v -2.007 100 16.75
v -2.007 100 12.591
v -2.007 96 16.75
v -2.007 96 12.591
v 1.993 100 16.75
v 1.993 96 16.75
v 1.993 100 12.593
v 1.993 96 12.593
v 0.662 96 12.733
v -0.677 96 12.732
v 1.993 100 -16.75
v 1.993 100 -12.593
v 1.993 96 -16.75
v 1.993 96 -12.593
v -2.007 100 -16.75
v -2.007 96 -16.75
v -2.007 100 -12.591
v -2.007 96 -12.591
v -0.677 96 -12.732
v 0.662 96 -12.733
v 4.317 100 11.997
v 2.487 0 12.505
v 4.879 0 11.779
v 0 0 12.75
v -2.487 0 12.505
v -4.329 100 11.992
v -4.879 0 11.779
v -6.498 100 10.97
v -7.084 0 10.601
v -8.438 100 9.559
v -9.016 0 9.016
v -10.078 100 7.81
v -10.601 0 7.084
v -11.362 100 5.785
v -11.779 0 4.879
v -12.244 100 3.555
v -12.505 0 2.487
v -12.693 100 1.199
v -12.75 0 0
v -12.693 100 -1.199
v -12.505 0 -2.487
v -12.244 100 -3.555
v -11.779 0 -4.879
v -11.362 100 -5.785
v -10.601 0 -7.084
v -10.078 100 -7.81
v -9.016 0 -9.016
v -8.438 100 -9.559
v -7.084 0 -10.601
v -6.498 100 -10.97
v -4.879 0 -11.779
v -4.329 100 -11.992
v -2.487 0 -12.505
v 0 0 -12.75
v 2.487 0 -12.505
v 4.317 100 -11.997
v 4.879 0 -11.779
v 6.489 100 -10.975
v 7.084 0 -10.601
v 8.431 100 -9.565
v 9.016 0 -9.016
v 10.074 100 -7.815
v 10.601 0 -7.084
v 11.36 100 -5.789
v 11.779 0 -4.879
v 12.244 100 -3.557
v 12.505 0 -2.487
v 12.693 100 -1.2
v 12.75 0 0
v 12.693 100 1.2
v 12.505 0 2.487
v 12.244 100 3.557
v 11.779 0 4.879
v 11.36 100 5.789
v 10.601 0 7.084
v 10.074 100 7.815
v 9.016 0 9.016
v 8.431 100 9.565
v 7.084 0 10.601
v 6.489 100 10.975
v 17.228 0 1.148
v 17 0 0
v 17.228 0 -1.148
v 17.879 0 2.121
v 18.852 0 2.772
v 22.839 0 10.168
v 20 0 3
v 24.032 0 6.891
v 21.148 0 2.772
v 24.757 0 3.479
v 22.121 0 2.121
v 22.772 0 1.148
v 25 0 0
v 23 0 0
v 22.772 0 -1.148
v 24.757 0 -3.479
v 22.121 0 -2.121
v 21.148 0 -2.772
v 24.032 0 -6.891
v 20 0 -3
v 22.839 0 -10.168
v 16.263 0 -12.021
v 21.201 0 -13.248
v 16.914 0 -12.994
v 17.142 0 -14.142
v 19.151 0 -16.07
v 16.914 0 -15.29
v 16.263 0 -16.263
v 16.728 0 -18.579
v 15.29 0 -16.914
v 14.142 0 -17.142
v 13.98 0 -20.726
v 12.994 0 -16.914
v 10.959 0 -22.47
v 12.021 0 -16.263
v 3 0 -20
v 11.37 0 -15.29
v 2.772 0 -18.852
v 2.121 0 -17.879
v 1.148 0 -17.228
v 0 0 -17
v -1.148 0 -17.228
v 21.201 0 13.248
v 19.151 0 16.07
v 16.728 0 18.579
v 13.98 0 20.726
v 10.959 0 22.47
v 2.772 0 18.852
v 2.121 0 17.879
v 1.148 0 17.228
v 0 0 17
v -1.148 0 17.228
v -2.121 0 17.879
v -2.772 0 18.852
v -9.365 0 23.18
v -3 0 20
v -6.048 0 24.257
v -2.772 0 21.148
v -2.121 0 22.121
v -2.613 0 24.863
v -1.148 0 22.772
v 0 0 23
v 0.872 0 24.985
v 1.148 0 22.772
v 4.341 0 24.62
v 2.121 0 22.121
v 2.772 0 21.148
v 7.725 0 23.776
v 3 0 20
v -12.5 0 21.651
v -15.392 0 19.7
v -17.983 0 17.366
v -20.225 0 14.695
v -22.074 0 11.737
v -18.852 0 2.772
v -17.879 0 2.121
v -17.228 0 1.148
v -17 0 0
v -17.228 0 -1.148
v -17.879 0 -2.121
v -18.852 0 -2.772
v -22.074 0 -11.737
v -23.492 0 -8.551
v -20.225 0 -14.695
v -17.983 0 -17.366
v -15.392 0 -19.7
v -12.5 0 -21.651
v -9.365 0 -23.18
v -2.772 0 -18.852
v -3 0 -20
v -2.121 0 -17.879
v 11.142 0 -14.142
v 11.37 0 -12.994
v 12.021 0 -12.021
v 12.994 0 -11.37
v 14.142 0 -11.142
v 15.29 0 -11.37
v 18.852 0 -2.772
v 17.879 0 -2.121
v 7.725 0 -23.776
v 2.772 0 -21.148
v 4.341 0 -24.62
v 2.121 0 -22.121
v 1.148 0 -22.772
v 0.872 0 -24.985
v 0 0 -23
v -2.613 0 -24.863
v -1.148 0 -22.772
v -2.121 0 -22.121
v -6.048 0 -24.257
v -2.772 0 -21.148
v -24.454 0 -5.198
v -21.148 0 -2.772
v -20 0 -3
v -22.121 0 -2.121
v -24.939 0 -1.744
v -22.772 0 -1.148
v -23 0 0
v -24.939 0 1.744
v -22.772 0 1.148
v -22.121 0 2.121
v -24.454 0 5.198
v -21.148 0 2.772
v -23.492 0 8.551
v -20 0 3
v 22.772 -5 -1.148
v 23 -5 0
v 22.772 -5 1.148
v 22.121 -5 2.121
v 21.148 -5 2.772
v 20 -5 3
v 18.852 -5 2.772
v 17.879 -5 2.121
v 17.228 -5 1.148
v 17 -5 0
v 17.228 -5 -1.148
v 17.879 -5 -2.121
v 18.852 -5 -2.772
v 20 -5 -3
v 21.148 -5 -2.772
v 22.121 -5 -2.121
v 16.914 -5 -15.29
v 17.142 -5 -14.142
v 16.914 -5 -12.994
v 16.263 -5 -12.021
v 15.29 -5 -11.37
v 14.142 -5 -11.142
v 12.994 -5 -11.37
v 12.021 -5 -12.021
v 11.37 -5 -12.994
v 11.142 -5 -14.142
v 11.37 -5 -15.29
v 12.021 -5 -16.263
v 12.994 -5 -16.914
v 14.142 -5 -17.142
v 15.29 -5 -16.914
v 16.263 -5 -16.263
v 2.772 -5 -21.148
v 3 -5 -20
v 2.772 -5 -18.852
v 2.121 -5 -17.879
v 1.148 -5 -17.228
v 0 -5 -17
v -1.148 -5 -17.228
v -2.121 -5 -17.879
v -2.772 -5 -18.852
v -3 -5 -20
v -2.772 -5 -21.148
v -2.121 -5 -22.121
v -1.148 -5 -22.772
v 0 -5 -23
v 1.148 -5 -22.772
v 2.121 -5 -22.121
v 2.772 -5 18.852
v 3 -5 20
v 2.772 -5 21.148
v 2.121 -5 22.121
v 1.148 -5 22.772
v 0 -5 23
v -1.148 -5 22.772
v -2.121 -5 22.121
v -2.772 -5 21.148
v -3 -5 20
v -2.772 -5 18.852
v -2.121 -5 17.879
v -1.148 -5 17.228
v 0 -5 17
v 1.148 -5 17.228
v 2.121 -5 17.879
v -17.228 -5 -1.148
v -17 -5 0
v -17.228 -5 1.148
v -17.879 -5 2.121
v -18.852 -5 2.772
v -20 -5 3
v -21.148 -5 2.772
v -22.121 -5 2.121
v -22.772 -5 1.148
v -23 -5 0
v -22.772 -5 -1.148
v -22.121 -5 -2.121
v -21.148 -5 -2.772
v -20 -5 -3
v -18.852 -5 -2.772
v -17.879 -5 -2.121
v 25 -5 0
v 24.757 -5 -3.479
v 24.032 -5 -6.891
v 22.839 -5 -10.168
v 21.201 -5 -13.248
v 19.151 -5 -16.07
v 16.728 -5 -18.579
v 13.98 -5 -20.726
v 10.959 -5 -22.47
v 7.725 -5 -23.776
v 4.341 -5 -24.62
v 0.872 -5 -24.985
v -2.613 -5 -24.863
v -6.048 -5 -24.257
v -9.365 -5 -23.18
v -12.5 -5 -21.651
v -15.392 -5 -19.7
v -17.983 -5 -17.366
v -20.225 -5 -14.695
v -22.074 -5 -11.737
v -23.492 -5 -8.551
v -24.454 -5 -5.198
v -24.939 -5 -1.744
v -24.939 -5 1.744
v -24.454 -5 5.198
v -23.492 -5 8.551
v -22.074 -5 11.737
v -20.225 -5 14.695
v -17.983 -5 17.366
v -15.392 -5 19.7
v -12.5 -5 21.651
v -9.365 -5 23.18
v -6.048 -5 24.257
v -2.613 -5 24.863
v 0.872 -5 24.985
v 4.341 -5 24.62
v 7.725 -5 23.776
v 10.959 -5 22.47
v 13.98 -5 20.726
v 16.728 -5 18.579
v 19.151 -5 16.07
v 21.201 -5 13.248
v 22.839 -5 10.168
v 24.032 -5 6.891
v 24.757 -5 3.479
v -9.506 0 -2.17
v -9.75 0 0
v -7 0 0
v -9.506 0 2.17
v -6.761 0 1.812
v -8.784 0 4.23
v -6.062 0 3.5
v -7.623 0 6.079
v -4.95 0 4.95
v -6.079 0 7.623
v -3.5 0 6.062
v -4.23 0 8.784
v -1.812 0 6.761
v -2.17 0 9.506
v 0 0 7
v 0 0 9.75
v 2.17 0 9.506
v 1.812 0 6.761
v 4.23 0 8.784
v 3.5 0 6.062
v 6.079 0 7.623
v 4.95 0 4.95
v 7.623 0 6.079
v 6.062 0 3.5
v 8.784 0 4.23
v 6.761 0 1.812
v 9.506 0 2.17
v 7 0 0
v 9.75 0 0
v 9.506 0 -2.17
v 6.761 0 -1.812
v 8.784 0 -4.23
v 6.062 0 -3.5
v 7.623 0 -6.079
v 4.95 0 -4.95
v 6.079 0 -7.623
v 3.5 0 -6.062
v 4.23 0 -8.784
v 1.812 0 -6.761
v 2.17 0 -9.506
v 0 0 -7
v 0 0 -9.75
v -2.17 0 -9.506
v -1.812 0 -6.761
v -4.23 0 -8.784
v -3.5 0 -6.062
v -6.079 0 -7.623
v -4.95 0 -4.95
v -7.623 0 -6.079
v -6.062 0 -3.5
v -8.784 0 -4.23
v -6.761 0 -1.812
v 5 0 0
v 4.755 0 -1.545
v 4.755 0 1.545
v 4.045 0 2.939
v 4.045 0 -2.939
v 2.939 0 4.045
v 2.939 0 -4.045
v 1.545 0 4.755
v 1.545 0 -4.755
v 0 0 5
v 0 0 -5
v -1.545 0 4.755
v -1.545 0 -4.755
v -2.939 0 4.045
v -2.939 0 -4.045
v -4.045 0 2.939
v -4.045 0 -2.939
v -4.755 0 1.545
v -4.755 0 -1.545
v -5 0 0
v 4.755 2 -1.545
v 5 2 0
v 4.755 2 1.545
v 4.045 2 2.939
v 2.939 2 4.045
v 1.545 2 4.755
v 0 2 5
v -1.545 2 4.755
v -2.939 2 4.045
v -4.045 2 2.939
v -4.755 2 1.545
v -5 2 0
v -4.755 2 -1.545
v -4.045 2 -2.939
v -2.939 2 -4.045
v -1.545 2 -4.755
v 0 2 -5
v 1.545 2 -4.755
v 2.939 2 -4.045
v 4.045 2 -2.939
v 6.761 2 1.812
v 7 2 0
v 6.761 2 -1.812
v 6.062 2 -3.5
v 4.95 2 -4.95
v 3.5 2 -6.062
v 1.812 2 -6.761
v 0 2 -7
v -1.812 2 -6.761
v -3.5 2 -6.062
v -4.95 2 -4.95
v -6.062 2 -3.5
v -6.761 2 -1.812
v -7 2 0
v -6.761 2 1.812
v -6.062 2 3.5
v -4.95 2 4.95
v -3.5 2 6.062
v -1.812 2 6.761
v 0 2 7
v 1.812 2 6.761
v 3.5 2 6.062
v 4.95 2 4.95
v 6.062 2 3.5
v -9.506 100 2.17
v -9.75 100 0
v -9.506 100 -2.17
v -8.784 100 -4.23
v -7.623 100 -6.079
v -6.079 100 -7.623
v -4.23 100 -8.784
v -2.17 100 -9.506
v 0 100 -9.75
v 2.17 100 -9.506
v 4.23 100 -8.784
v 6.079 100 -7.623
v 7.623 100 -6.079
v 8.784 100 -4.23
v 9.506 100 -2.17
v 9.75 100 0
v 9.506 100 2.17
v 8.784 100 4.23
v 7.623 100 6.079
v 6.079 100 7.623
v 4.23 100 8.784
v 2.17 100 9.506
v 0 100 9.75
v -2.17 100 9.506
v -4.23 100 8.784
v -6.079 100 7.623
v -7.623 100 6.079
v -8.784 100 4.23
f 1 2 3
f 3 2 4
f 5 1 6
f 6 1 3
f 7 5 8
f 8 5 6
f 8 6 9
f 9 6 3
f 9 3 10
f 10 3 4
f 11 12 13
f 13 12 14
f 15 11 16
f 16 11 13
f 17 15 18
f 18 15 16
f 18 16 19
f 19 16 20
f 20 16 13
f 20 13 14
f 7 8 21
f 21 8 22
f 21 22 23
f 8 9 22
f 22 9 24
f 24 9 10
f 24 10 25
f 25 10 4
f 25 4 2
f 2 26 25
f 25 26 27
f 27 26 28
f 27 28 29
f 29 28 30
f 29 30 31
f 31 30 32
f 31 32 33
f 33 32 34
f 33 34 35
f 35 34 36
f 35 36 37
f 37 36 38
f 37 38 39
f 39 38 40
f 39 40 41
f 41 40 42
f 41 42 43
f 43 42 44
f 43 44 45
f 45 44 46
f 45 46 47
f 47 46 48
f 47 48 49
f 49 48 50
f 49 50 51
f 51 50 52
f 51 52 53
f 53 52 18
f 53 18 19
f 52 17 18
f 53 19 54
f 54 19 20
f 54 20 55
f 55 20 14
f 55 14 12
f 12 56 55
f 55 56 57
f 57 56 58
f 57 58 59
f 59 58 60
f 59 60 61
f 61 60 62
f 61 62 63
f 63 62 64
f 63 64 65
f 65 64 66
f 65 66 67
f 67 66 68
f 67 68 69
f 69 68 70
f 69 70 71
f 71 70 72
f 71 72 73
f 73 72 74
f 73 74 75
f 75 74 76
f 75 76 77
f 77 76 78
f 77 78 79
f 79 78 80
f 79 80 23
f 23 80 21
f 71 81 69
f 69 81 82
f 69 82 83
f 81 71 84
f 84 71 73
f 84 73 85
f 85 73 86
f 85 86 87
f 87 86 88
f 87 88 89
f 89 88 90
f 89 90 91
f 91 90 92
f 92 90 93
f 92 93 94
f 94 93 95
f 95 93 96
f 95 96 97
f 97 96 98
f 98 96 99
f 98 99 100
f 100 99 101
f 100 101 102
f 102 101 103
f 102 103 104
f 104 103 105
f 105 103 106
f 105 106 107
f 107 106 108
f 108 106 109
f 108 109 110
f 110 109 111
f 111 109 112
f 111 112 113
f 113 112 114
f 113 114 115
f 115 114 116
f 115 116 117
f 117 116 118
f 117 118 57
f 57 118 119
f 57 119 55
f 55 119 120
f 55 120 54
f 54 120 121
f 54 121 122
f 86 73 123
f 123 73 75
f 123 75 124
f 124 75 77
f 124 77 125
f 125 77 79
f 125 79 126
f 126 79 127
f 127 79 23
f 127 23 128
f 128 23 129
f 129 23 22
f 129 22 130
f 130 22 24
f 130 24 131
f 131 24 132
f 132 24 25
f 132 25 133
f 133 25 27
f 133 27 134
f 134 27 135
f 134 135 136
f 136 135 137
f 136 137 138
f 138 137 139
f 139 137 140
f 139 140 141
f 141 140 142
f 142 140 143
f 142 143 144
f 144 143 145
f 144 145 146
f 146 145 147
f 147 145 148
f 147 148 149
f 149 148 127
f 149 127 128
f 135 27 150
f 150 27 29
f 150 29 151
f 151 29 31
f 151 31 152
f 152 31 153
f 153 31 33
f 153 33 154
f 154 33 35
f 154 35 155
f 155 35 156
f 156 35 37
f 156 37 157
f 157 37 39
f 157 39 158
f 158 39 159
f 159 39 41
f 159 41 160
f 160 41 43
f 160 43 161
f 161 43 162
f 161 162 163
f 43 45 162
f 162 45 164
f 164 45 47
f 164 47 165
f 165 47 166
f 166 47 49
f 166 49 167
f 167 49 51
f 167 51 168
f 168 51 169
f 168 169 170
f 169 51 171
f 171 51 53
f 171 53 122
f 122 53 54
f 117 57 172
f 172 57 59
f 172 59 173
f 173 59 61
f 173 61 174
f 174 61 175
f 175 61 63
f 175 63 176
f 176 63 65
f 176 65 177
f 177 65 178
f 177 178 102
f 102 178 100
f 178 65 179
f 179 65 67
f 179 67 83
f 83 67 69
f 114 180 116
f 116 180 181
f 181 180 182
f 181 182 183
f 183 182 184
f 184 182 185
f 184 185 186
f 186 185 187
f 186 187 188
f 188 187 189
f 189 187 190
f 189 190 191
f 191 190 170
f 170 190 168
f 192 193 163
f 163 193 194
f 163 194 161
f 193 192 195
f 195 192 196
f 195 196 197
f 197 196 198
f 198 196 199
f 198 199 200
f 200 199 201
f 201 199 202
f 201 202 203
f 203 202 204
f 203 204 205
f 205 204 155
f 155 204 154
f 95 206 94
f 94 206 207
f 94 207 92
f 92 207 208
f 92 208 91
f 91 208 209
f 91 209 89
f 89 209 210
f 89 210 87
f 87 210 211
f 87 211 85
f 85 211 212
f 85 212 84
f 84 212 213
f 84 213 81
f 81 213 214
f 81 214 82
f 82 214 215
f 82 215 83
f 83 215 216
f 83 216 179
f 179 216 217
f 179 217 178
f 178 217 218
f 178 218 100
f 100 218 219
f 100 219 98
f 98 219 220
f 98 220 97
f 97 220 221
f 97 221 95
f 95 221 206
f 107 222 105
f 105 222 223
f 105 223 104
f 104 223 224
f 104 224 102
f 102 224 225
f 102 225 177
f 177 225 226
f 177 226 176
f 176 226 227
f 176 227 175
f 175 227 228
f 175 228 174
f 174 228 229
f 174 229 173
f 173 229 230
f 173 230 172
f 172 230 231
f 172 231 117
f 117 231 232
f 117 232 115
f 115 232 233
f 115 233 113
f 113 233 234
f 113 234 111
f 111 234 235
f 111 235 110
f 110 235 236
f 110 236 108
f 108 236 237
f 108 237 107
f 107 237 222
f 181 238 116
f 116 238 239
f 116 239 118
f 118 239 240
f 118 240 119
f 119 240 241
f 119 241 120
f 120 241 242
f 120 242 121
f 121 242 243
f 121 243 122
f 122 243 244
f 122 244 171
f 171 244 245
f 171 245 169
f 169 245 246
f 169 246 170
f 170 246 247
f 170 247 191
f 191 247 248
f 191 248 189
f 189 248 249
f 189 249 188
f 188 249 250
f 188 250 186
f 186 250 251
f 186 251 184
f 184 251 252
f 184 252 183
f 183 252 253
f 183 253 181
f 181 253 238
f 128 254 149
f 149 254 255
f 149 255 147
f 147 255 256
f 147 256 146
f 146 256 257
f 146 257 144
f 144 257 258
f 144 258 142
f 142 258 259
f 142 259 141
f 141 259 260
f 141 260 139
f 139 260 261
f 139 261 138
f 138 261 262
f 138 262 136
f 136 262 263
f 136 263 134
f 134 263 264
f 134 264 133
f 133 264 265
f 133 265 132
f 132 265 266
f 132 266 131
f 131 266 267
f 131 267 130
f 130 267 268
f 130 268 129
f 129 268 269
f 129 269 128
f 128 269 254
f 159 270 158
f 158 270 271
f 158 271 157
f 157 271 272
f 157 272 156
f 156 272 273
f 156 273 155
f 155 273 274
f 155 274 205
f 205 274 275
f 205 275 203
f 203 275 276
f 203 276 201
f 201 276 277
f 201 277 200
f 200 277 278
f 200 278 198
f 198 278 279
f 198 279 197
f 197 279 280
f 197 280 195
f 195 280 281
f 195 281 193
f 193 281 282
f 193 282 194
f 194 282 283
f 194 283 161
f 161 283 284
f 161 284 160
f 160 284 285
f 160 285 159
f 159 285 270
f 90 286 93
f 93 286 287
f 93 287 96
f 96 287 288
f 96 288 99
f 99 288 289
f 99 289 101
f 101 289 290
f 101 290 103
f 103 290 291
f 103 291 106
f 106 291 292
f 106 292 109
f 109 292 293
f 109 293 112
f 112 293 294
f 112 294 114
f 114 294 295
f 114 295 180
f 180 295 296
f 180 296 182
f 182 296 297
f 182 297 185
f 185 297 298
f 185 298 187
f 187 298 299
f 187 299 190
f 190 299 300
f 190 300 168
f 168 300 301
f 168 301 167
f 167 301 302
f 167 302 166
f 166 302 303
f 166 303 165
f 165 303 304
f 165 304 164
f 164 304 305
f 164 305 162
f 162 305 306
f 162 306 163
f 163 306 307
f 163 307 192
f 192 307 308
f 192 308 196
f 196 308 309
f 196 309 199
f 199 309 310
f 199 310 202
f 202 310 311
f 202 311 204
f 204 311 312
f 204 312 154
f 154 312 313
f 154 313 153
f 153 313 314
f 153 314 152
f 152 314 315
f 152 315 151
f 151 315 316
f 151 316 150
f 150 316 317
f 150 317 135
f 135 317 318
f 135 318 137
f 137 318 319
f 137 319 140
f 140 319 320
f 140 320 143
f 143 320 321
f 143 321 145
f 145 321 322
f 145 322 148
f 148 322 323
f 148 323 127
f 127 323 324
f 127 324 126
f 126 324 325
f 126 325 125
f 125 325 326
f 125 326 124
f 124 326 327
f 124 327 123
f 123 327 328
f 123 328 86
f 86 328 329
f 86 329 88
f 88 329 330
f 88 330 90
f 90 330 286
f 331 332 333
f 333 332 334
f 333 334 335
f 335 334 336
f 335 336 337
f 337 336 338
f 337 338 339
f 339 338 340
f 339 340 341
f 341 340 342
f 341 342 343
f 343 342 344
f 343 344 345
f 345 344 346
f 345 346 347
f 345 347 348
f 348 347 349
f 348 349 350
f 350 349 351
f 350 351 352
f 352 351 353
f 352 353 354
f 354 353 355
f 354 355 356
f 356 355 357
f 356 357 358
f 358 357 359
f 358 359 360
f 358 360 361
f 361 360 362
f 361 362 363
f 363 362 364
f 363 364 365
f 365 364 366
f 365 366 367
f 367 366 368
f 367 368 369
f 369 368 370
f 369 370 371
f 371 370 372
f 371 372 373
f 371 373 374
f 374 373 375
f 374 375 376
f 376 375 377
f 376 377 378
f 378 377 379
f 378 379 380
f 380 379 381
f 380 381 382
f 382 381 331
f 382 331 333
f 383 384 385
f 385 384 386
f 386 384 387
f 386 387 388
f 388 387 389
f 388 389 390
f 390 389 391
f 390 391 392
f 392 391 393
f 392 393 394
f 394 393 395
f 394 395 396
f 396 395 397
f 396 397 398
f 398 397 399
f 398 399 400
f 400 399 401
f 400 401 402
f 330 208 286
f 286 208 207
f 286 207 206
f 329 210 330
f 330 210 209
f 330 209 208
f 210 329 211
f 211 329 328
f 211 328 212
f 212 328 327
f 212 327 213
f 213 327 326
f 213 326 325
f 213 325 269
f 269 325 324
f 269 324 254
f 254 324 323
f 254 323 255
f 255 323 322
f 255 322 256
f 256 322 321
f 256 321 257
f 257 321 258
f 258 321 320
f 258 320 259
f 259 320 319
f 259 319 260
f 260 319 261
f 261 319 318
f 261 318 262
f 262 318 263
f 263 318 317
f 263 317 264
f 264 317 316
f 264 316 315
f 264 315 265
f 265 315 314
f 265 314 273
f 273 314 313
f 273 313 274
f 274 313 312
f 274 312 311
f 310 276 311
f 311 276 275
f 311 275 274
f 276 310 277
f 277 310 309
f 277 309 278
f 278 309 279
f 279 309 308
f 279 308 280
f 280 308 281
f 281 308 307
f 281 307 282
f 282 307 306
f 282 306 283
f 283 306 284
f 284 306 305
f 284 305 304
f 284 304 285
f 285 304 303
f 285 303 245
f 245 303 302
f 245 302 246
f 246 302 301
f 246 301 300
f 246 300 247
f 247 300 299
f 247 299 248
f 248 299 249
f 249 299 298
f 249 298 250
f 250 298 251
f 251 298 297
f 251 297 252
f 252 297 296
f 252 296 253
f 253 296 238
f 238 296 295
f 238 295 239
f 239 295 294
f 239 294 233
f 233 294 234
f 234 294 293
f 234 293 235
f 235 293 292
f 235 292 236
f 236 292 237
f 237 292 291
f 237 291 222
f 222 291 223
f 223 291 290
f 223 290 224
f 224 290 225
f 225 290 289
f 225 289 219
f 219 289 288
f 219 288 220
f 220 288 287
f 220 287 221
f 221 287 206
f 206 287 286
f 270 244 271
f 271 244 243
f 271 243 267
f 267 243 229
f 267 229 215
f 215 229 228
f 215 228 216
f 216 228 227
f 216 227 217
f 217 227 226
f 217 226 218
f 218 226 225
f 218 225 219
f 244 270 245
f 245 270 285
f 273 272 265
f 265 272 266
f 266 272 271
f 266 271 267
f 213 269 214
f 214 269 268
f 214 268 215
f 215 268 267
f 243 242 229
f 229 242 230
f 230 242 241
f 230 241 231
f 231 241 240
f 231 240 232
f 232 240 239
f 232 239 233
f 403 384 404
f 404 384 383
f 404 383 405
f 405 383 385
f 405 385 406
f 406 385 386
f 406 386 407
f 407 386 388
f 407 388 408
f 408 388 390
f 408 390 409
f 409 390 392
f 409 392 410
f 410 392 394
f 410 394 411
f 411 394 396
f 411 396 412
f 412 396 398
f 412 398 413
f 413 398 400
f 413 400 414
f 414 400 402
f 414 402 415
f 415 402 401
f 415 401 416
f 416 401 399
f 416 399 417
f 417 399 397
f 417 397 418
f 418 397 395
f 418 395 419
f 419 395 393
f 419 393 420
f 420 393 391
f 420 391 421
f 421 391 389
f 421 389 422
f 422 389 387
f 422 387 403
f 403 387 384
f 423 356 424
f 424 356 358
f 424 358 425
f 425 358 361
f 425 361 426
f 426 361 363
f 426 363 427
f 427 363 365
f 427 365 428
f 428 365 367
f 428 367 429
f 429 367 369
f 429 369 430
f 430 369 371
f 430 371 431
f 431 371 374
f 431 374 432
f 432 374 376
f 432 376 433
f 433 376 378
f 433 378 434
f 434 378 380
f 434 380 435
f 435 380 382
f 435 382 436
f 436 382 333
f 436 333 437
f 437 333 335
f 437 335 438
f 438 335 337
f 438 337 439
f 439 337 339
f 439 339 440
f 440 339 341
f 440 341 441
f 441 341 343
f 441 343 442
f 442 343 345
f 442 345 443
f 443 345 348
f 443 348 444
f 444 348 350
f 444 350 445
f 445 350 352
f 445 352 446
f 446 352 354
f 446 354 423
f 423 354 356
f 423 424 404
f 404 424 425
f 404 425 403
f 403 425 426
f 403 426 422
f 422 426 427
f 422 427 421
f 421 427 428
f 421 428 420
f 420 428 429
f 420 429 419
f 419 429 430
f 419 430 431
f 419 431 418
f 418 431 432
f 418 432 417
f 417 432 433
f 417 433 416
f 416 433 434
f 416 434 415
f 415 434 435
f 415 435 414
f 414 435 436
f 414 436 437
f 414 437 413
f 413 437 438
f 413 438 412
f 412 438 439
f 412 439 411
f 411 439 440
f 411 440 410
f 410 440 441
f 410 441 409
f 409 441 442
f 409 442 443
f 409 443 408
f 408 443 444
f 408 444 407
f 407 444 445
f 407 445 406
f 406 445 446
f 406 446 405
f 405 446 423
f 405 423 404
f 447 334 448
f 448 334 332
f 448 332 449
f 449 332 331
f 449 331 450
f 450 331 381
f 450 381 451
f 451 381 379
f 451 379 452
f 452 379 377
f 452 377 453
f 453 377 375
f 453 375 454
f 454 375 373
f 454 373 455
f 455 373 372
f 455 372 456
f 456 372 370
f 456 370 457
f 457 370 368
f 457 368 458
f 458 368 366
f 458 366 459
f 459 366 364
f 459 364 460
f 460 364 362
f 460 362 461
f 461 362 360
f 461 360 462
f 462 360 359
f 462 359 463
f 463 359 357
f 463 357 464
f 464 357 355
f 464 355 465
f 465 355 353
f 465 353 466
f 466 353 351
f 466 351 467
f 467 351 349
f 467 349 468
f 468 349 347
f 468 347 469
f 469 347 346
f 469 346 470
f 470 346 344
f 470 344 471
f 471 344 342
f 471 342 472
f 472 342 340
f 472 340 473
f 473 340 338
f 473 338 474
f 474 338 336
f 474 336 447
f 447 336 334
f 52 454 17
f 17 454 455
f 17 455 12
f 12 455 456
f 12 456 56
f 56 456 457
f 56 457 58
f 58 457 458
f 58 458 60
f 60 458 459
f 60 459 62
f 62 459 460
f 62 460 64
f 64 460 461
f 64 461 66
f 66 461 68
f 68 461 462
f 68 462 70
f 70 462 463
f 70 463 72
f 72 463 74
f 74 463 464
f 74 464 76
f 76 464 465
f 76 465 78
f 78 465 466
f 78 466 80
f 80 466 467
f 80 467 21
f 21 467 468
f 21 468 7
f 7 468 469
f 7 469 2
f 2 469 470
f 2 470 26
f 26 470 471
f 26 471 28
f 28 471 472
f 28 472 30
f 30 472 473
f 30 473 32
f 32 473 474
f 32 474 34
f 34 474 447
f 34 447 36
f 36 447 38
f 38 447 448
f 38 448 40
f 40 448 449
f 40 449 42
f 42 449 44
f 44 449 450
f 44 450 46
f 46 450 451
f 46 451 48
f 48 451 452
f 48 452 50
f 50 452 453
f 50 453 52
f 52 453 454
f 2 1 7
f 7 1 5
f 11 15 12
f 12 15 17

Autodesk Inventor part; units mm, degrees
ref_plane "YZ Plane" through (0, 0, 0) normal (1, 0, 0) x (0, 1, 0)
ref_plane "XZ Plane" through (0, 0, 0) normal (0, 1, 0) x (-1, 0, 0)
ref_plane "XY Plane" through (0, 0, 0) normal (0, 0, 1) x (1, 0, 0)
sketch "Sketch1" plane through (0, 0, 0) normal (0, 1, 0) x (-1, 0, 0)
  circle A0 centre (0, 0) radius 9.75
  circle A1 centre (0, 0) radius 12.75
  dimension "d0" = 19.5
  dimension "d1" = 3
extrude "Extrusion1" add sketch "Sketch1" along normal blind 100
sketch "Sketch2" plane through (0, 0, 0) normal (0, -1, 0) x (1, 0, 0)
  circle A0 centre (0, 0) radius 5
  circle A1 centre (0, 0) radius 7
  dimension "d4" = 10
  dimension "d5" = 14
extrude "Extrusion2" add sketch "Sketch2" against normal blind 2
sketch "Sketch3" plane through (0, 0, 0) normal (0, -1, 0) x (1, 0, 0)
  circle A0 centre (0, 0) radius 12.75
extrude "Extrusion3" add sketch "Sketch3" along normal blind 5
sketch "Sketch4" plane through (0, -5, 0) normal (0, -1, 0) x (1, 0, 0)
  circle A0 centre (0, 0) radius 25
  circle A1 centre (0, 0) radius 7 projected
  circle A2 centre (0, 0) radius 20
  circle A3 centre (-20, 0) radius 3
  circle A4 centre (0, 20) radius 3
  circle A5 centre (20, 0) radius 3
  circle A6 centre (0, -20) radius 3
  circle A7 centre (0, 0) radius 12.75 projected
  line L0 (-20, 0) -> (0, 0)
  circle A8 centre (0, 0) radius 9.75 projected
  line L1 (0, 20) -> (0, 0)
  circle A9 centre (0, 0) radius 5 projected
  line L2 (20, 0) -> (0, 0)
  line L3 (0, -20) -> (0, 0)
  circle A10 centre (14.1421, -14.1421) radius 3
  line L4 (14.1421, -14.1421) -> (0, 0)
  line L5 (-35, 0) -> (35, 0) projected
  dimension "d10" = 50
  dimension "d11" = 40
  dimension "d12" = 90
  dimension "d13" = 90
  dimension "d14" = 90
  dimension "d15" = 45
  dimension "d16" = 6
extrude "Extrusion4" add sketch "Sketch4" against normal blind 5 contours L5 A5 A2 A4 A3 A0 | A0 L5 A3 A2 A6 A10 A5 | A5 L2 A7 L1 A4 A2 | A2 A10 L4 A7 L2 A5 | A2 A4 L1 A7 L0 A3 | A3 L0 A7 L3 A6 A2 | L2 A8 L1 A7 | A7 L4 A8 L2 | A10 A2 A6 L3 A7 L4 | L0 A8 L3 A7 | A7 L1 A8 L0 | A7 L3 A8 L4 | L2 A1 L1 A8 | A8 L4 A1 L2 | A8 L1 A1 L0 | L0 A1 L3 A8 | A8 L3 A1 L4 | L2 A9 L1 A1 | A1 L4 A9 L2 | L0 A9 L3 A1 | A1 L1 A9 L0 | A1 L3 A9 L4 | L2 L1 A9 | A9 L4 L2 | A9 L1 L0 | L0 L3 A9 | A9 L3 L4
sketch "Sketch5" plane through (0, 100, 0) normal (0, 1, 0) x (1, 0, 0)
  circle A0 centre (0, 0) radius 12.75 projected
  circle A1 centre (0, 0) radius 9.75 projected
  line L0 (1.9927, -8.75) -> (-2.0073, -8.75)
  line L1 (-2.0073, -8.75) -> (-2.0073, -16.75)
  line L2 (-2.0073, -16.75) -> (1.9927, -16.75)
  line L3 (1.9927, -16.75) -> (1.9927, -8.75)
  circle A2 centre (0, 0) radius 12.75 projected
  line L4 (1.9927, -8.75) -> (-2.0073, -16.75) construction
  line L5 (-2.0073, -8.75) -> (1.9927, -16.75) construction
  line L6 (1.9927, 8.75) -> (-2.0073, 8.75)
  line L7 (-2.0073, 8.75) -> (-2.0073, 16.75)
  line L8 (-2.0073, 16.75) -> (1.9927, 16.75)
  line L9 (1.9927, 16.75) -> (1.9927, 8.75)
  line L10 (1.9927, 8.75) -> (-2.0073, 16.75) construction
  line L11 (-2.0073, 8.75) -> (1.9927, 16.75) construction
  point P0 (-0.0073, -12.75)
  point P1 (-0.0073, 12.75)
  point P2 (1.9927, -12.5933)
  point P3 (-2.0073, -12.591)
  point P4 (-2.0073, 12.591)
  point P5 (1.9927, 12.5933)
  dimension "d19" = 4
  dimension "d20" = 8
extrude "Extrusion5" add sketch "Sketch5" against normal blind 4 contours A0 L7 L8 L9 | L3 L2 L1 A0
properties part number "Base"
